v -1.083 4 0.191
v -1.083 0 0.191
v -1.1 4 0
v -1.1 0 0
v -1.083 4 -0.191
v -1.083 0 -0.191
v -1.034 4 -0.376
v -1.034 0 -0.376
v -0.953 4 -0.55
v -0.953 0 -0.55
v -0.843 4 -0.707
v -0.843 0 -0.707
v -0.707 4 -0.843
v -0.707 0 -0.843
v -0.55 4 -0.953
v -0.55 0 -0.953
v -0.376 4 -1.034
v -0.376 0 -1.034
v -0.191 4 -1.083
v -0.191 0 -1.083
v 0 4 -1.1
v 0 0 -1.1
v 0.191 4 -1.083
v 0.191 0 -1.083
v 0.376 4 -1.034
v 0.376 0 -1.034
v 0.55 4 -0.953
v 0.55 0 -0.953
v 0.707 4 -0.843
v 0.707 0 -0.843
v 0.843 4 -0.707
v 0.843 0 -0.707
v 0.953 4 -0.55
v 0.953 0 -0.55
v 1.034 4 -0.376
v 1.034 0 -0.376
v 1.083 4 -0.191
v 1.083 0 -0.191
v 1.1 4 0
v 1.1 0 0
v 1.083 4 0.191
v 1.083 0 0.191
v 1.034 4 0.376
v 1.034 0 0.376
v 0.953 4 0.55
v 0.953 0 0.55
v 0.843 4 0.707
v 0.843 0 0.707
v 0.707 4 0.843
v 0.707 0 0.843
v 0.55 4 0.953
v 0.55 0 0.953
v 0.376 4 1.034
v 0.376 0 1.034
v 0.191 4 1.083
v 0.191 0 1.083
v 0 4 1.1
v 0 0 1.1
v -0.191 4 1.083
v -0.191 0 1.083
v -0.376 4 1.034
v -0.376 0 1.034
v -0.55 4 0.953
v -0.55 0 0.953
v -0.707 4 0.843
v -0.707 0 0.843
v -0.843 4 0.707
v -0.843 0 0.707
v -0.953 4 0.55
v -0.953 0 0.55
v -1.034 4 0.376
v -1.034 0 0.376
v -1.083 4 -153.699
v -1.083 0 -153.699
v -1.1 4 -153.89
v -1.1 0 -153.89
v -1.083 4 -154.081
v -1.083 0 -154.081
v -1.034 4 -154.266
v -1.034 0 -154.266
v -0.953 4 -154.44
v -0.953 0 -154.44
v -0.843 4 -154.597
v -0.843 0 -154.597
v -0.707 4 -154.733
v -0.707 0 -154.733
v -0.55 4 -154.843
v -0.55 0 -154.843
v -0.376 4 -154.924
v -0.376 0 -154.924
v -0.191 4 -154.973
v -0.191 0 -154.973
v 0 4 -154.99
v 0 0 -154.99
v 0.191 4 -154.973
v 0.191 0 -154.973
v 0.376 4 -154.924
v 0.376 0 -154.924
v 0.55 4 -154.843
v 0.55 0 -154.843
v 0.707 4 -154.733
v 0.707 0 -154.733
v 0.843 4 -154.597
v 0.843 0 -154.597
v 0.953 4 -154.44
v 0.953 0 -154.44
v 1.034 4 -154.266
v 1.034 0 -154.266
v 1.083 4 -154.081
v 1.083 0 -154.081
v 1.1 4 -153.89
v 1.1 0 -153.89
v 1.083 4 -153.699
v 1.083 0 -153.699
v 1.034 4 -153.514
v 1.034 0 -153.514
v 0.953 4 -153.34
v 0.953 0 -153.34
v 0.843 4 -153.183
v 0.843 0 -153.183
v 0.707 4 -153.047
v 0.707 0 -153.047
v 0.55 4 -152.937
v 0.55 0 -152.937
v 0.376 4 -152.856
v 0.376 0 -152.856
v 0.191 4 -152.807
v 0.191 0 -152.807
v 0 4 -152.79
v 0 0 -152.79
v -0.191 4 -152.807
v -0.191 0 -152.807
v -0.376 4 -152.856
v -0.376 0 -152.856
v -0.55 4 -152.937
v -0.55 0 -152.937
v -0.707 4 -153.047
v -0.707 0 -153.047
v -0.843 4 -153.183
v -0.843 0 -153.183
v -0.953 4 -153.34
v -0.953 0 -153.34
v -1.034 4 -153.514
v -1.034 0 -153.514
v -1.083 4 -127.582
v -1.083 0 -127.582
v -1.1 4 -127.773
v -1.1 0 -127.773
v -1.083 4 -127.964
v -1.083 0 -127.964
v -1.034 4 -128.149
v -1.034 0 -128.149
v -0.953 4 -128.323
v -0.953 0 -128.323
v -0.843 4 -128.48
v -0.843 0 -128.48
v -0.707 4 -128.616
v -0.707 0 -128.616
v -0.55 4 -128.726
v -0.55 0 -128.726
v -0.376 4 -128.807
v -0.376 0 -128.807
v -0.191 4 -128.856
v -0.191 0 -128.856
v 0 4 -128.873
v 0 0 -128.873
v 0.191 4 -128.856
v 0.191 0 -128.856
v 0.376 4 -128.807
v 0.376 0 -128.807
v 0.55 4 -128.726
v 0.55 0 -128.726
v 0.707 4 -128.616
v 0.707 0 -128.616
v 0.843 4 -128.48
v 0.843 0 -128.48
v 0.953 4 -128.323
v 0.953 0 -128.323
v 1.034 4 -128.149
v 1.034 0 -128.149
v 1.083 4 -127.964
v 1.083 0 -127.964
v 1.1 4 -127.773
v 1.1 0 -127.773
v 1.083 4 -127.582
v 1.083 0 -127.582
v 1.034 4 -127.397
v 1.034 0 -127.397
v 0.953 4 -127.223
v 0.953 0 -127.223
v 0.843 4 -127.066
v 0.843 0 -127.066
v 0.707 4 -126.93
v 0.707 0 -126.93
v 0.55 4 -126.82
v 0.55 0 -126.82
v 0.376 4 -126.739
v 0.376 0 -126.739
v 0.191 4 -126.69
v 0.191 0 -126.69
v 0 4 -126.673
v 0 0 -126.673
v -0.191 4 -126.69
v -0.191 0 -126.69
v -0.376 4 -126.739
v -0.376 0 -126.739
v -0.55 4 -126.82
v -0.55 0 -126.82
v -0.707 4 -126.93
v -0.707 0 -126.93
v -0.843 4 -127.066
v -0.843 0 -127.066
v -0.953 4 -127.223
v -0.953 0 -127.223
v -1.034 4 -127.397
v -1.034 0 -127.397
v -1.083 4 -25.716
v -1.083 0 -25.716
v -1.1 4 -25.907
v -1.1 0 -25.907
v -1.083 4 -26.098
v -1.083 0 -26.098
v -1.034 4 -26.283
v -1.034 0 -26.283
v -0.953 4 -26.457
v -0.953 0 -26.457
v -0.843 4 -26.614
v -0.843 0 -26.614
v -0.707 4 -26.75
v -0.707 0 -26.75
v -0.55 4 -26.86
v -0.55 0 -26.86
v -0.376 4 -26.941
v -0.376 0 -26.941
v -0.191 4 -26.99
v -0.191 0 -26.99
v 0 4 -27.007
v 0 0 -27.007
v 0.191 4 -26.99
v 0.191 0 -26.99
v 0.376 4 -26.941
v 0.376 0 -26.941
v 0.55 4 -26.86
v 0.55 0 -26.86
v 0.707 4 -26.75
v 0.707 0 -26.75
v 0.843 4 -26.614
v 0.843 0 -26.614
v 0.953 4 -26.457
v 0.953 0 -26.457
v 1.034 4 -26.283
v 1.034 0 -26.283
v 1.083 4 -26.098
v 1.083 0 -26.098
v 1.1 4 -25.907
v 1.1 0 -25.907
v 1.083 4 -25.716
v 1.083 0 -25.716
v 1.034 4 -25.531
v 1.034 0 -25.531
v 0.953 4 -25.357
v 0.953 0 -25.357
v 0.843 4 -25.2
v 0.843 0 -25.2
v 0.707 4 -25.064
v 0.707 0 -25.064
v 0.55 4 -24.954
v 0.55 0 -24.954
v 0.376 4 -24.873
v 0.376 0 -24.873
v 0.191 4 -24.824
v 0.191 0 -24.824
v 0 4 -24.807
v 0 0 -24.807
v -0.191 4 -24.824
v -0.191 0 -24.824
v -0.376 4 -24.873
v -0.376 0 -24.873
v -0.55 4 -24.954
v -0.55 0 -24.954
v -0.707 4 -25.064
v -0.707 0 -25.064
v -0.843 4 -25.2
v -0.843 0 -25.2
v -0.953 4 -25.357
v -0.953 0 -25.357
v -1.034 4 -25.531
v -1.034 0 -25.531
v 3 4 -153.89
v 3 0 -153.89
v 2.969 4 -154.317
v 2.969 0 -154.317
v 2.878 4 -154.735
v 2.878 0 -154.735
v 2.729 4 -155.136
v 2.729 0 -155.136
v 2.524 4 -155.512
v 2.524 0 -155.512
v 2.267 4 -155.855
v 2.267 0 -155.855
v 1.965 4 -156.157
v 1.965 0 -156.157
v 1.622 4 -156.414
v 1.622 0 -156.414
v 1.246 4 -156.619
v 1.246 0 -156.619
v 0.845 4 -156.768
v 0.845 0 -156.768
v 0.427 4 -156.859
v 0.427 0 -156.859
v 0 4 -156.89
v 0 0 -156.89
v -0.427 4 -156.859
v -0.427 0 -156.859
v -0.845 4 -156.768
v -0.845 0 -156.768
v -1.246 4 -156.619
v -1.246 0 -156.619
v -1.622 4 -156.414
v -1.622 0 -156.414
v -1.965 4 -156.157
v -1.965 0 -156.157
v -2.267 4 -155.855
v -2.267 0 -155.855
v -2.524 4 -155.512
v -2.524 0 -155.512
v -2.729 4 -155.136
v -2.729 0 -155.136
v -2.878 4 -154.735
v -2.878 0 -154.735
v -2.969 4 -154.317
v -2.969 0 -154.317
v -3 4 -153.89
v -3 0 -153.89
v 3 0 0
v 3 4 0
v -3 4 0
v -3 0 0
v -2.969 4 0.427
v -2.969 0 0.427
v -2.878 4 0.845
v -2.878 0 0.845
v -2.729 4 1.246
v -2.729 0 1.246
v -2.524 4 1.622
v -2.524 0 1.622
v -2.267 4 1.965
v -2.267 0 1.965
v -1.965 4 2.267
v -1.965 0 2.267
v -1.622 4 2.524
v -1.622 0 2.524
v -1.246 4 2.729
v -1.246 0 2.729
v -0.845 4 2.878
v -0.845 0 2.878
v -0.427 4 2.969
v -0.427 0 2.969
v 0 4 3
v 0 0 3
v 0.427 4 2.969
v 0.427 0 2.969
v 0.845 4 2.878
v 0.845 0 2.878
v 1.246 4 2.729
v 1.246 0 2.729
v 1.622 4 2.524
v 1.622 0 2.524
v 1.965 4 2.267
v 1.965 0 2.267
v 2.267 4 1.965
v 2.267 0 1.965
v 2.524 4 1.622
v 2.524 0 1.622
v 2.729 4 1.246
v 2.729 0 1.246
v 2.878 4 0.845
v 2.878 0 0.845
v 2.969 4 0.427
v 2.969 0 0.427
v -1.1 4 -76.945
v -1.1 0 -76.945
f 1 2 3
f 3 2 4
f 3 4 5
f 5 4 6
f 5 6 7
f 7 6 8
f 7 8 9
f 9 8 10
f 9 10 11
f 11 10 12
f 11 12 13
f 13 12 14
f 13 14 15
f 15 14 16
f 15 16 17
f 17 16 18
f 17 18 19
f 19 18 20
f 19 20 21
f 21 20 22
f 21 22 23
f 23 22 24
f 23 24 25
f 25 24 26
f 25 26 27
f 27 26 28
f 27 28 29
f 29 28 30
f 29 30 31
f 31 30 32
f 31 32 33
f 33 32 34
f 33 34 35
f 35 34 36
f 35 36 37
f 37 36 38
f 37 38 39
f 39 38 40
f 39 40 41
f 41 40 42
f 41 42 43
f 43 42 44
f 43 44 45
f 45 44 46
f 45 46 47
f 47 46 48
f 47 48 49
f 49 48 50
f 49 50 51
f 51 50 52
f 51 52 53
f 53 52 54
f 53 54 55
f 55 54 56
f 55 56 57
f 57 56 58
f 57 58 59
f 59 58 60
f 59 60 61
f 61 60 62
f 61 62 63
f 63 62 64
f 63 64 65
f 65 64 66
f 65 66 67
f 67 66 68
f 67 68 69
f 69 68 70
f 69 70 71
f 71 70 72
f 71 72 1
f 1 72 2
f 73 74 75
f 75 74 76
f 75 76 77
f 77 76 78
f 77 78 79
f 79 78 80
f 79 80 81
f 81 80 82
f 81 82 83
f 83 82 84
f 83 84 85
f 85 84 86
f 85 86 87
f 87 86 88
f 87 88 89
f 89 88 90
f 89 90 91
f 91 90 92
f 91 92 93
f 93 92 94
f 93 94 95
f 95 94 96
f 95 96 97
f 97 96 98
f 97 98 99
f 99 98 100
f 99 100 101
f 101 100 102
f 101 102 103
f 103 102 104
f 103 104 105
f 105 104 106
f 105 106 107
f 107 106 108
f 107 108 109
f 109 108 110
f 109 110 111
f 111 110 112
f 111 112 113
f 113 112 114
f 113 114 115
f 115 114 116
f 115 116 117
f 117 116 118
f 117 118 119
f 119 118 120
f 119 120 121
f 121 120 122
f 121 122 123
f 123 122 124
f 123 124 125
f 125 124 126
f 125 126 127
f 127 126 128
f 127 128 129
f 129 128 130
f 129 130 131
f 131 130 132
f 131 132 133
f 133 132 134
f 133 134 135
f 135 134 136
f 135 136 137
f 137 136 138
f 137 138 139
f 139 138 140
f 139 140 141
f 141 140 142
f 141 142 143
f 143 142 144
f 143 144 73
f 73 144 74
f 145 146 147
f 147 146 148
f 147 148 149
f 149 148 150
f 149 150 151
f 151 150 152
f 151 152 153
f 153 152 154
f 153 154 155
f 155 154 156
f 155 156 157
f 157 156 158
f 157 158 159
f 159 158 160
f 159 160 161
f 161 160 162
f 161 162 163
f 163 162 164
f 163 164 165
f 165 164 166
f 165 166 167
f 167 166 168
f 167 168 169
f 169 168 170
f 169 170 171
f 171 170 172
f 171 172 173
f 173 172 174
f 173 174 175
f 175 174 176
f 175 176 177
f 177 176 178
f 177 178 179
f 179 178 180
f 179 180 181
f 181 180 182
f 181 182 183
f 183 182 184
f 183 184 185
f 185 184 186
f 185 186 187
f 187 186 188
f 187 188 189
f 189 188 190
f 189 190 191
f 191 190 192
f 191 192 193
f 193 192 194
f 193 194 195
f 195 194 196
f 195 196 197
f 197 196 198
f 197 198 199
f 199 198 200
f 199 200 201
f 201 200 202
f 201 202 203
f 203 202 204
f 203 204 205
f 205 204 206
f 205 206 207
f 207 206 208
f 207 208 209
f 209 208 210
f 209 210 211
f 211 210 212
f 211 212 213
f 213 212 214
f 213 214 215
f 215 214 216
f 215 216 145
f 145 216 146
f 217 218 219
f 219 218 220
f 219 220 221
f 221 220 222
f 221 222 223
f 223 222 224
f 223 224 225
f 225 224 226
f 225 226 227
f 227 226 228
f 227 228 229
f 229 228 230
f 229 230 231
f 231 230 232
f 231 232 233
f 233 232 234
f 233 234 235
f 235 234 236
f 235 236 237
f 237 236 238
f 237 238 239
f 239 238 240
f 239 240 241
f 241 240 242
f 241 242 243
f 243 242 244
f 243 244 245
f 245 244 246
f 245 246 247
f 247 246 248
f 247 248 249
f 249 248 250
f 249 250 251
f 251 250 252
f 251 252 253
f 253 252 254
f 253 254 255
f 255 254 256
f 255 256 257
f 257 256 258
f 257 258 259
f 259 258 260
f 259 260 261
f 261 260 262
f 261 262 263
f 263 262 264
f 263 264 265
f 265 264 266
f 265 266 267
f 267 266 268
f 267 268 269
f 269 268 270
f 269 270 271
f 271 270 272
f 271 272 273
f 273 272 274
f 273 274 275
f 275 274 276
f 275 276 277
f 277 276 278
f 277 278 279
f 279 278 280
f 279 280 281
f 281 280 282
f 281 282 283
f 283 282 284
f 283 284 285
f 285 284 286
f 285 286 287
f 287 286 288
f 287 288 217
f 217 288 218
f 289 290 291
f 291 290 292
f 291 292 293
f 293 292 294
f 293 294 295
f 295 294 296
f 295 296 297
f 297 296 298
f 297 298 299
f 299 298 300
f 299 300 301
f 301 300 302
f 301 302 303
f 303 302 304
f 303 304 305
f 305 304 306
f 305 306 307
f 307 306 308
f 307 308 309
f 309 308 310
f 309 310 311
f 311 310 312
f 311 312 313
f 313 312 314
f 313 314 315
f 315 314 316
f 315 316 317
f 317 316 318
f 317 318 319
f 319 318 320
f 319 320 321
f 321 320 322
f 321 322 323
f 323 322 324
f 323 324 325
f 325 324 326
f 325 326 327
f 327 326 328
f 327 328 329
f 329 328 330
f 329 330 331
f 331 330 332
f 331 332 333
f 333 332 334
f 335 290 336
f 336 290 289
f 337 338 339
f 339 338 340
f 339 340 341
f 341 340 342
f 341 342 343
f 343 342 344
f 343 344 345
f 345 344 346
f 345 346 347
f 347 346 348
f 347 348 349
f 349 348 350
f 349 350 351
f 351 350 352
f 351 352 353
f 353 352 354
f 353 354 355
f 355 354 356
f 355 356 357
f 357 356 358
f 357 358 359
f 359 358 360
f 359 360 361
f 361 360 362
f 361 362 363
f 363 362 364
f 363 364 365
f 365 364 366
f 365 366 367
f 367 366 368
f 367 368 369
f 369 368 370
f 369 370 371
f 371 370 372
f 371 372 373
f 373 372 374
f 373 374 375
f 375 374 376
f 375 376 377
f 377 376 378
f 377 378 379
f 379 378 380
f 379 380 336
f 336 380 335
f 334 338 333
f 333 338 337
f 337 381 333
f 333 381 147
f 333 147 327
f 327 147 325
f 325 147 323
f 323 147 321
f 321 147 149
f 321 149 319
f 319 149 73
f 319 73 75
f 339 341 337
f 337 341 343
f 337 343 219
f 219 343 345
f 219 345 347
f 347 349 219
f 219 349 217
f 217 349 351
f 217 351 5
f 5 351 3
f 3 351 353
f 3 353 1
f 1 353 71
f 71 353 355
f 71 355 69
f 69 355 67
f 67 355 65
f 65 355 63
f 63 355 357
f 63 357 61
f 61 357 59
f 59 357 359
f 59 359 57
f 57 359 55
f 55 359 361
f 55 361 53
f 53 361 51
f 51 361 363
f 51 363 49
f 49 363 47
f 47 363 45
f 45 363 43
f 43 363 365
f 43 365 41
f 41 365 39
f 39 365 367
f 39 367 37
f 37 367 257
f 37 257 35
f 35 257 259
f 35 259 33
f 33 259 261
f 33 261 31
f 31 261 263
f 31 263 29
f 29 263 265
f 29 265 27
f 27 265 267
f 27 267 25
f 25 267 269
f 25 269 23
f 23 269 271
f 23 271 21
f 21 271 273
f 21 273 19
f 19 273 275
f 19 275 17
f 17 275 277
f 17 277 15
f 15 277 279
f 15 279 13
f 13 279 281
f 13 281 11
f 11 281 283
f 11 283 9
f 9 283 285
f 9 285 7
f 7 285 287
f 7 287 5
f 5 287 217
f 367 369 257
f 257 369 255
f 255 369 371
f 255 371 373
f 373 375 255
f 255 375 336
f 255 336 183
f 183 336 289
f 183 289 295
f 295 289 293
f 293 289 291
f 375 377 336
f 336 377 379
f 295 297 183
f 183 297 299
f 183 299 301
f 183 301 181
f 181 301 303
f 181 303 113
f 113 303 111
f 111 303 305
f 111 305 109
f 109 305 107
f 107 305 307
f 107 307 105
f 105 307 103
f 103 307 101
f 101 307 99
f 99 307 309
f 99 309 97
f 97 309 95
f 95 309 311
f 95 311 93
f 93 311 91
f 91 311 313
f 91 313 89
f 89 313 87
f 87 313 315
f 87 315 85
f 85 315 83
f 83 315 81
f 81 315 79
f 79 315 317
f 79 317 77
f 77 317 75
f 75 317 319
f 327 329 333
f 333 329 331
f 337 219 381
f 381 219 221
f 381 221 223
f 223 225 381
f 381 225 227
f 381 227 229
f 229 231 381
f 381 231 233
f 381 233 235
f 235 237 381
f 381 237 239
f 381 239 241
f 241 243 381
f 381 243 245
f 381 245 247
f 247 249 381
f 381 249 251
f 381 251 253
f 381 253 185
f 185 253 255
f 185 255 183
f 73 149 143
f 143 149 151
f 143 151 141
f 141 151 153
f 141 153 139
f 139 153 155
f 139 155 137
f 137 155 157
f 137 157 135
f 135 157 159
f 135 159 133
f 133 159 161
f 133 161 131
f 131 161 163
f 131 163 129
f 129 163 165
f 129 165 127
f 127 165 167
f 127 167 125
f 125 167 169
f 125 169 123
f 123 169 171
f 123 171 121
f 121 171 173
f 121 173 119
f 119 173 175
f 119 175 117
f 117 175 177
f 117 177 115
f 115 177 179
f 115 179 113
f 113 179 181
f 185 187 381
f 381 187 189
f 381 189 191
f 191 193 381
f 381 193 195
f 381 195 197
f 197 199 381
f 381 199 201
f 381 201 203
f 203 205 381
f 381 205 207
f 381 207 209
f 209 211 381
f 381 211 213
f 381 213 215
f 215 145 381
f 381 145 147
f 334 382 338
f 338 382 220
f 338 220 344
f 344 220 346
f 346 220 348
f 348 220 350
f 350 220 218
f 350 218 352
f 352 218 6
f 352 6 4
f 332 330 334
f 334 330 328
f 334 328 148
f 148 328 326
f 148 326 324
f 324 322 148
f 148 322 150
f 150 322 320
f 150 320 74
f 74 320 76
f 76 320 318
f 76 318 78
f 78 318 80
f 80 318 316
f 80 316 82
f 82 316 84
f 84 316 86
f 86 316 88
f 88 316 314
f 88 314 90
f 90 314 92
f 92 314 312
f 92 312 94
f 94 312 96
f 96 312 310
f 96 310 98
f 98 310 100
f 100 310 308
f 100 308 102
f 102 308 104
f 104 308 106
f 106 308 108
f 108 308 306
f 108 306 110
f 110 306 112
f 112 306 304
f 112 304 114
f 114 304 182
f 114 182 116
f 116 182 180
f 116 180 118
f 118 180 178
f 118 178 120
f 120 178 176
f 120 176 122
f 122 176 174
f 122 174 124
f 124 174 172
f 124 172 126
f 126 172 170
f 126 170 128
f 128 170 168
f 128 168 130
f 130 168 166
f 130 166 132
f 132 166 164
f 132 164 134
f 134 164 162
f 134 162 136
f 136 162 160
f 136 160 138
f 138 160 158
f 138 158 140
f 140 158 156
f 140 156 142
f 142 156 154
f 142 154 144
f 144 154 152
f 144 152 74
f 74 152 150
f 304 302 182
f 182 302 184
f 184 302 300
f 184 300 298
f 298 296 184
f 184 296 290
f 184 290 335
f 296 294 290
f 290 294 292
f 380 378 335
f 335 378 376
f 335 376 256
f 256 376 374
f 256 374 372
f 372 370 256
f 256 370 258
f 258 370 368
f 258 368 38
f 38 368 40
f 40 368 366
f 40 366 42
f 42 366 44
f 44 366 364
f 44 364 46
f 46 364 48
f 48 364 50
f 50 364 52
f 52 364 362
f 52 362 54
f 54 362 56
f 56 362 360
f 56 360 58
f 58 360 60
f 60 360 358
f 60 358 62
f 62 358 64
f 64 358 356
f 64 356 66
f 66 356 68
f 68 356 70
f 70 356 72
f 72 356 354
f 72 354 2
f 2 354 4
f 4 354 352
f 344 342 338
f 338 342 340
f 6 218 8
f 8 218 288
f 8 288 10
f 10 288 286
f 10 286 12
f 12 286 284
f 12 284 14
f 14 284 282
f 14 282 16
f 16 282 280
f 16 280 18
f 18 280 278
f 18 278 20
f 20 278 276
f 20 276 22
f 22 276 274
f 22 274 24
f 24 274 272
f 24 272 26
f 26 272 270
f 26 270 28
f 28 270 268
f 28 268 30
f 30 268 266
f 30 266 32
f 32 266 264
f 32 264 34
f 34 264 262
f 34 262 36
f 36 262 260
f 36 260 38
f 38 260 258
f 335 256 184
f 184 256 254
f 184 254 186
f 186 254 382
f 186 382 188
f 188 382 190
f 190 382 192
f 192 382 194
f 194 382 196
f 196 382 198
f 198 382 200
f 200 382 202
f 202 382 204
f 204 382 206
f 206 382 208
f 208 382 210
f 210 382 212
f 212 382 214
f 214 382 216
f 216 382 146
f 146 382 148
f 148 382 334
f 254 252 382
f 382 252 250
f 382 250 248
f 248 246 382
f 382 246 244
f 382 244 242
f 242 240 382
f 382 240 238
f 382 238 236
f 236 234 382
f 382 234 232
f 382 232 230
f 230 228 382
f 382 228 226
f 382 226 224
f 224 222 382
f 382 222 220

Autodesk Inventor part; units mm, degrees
ref_plane "YZ Plane" through (0, 0, 0) normal (1, 0, 0) x (0, 1, 0)
ref_plane "XZ Plane" through (0, 0, 0) normal (0, 1, 0) x (-1, 0, 0)
ref_plane "XY Plane" through (0, 0, 0) normal (0, 0, 1) x (1, 0, 0)
sketch "Sketch1" plane through (0, 0, 0) normal (0, 1, 0) x (-1, 0, 0)
  line L0 (0, 0) -> (0, -153.89) construction
  line L1 (3, 0) -> (3, -153.89)
  line L2 (-3, -153.89) -> (-3, 0)
  arc A0 (3, 0) -> (-3, 0) centre (0, 0) ccw
  arc A1 (-3, -153.89) -> (3, -153.89) centre (0, -153.89) ccw
  circle A2 centre (0, 0) radius 1.1
  circle A3 centre (0, -153.89) radius 1.1
  circle A4 centre (0, -25.907) radius 1.1
  circle A5 centre (0, -127.773) radius 1.1
  point P0 (0, -76.945)
  dimension "d0" = 2.2
  dimension "d1" = 2.2
  dimension "d2" = 6
  dimension "d3" = 153.89
  dimension "d10" = 2.2
  dimension "d11" = 25.907
  dimension "d12" = 2.2
  dimension "d13" = 127.773
extrude "Extrusion1" add sketch "Sketch1" along normal blind 4
